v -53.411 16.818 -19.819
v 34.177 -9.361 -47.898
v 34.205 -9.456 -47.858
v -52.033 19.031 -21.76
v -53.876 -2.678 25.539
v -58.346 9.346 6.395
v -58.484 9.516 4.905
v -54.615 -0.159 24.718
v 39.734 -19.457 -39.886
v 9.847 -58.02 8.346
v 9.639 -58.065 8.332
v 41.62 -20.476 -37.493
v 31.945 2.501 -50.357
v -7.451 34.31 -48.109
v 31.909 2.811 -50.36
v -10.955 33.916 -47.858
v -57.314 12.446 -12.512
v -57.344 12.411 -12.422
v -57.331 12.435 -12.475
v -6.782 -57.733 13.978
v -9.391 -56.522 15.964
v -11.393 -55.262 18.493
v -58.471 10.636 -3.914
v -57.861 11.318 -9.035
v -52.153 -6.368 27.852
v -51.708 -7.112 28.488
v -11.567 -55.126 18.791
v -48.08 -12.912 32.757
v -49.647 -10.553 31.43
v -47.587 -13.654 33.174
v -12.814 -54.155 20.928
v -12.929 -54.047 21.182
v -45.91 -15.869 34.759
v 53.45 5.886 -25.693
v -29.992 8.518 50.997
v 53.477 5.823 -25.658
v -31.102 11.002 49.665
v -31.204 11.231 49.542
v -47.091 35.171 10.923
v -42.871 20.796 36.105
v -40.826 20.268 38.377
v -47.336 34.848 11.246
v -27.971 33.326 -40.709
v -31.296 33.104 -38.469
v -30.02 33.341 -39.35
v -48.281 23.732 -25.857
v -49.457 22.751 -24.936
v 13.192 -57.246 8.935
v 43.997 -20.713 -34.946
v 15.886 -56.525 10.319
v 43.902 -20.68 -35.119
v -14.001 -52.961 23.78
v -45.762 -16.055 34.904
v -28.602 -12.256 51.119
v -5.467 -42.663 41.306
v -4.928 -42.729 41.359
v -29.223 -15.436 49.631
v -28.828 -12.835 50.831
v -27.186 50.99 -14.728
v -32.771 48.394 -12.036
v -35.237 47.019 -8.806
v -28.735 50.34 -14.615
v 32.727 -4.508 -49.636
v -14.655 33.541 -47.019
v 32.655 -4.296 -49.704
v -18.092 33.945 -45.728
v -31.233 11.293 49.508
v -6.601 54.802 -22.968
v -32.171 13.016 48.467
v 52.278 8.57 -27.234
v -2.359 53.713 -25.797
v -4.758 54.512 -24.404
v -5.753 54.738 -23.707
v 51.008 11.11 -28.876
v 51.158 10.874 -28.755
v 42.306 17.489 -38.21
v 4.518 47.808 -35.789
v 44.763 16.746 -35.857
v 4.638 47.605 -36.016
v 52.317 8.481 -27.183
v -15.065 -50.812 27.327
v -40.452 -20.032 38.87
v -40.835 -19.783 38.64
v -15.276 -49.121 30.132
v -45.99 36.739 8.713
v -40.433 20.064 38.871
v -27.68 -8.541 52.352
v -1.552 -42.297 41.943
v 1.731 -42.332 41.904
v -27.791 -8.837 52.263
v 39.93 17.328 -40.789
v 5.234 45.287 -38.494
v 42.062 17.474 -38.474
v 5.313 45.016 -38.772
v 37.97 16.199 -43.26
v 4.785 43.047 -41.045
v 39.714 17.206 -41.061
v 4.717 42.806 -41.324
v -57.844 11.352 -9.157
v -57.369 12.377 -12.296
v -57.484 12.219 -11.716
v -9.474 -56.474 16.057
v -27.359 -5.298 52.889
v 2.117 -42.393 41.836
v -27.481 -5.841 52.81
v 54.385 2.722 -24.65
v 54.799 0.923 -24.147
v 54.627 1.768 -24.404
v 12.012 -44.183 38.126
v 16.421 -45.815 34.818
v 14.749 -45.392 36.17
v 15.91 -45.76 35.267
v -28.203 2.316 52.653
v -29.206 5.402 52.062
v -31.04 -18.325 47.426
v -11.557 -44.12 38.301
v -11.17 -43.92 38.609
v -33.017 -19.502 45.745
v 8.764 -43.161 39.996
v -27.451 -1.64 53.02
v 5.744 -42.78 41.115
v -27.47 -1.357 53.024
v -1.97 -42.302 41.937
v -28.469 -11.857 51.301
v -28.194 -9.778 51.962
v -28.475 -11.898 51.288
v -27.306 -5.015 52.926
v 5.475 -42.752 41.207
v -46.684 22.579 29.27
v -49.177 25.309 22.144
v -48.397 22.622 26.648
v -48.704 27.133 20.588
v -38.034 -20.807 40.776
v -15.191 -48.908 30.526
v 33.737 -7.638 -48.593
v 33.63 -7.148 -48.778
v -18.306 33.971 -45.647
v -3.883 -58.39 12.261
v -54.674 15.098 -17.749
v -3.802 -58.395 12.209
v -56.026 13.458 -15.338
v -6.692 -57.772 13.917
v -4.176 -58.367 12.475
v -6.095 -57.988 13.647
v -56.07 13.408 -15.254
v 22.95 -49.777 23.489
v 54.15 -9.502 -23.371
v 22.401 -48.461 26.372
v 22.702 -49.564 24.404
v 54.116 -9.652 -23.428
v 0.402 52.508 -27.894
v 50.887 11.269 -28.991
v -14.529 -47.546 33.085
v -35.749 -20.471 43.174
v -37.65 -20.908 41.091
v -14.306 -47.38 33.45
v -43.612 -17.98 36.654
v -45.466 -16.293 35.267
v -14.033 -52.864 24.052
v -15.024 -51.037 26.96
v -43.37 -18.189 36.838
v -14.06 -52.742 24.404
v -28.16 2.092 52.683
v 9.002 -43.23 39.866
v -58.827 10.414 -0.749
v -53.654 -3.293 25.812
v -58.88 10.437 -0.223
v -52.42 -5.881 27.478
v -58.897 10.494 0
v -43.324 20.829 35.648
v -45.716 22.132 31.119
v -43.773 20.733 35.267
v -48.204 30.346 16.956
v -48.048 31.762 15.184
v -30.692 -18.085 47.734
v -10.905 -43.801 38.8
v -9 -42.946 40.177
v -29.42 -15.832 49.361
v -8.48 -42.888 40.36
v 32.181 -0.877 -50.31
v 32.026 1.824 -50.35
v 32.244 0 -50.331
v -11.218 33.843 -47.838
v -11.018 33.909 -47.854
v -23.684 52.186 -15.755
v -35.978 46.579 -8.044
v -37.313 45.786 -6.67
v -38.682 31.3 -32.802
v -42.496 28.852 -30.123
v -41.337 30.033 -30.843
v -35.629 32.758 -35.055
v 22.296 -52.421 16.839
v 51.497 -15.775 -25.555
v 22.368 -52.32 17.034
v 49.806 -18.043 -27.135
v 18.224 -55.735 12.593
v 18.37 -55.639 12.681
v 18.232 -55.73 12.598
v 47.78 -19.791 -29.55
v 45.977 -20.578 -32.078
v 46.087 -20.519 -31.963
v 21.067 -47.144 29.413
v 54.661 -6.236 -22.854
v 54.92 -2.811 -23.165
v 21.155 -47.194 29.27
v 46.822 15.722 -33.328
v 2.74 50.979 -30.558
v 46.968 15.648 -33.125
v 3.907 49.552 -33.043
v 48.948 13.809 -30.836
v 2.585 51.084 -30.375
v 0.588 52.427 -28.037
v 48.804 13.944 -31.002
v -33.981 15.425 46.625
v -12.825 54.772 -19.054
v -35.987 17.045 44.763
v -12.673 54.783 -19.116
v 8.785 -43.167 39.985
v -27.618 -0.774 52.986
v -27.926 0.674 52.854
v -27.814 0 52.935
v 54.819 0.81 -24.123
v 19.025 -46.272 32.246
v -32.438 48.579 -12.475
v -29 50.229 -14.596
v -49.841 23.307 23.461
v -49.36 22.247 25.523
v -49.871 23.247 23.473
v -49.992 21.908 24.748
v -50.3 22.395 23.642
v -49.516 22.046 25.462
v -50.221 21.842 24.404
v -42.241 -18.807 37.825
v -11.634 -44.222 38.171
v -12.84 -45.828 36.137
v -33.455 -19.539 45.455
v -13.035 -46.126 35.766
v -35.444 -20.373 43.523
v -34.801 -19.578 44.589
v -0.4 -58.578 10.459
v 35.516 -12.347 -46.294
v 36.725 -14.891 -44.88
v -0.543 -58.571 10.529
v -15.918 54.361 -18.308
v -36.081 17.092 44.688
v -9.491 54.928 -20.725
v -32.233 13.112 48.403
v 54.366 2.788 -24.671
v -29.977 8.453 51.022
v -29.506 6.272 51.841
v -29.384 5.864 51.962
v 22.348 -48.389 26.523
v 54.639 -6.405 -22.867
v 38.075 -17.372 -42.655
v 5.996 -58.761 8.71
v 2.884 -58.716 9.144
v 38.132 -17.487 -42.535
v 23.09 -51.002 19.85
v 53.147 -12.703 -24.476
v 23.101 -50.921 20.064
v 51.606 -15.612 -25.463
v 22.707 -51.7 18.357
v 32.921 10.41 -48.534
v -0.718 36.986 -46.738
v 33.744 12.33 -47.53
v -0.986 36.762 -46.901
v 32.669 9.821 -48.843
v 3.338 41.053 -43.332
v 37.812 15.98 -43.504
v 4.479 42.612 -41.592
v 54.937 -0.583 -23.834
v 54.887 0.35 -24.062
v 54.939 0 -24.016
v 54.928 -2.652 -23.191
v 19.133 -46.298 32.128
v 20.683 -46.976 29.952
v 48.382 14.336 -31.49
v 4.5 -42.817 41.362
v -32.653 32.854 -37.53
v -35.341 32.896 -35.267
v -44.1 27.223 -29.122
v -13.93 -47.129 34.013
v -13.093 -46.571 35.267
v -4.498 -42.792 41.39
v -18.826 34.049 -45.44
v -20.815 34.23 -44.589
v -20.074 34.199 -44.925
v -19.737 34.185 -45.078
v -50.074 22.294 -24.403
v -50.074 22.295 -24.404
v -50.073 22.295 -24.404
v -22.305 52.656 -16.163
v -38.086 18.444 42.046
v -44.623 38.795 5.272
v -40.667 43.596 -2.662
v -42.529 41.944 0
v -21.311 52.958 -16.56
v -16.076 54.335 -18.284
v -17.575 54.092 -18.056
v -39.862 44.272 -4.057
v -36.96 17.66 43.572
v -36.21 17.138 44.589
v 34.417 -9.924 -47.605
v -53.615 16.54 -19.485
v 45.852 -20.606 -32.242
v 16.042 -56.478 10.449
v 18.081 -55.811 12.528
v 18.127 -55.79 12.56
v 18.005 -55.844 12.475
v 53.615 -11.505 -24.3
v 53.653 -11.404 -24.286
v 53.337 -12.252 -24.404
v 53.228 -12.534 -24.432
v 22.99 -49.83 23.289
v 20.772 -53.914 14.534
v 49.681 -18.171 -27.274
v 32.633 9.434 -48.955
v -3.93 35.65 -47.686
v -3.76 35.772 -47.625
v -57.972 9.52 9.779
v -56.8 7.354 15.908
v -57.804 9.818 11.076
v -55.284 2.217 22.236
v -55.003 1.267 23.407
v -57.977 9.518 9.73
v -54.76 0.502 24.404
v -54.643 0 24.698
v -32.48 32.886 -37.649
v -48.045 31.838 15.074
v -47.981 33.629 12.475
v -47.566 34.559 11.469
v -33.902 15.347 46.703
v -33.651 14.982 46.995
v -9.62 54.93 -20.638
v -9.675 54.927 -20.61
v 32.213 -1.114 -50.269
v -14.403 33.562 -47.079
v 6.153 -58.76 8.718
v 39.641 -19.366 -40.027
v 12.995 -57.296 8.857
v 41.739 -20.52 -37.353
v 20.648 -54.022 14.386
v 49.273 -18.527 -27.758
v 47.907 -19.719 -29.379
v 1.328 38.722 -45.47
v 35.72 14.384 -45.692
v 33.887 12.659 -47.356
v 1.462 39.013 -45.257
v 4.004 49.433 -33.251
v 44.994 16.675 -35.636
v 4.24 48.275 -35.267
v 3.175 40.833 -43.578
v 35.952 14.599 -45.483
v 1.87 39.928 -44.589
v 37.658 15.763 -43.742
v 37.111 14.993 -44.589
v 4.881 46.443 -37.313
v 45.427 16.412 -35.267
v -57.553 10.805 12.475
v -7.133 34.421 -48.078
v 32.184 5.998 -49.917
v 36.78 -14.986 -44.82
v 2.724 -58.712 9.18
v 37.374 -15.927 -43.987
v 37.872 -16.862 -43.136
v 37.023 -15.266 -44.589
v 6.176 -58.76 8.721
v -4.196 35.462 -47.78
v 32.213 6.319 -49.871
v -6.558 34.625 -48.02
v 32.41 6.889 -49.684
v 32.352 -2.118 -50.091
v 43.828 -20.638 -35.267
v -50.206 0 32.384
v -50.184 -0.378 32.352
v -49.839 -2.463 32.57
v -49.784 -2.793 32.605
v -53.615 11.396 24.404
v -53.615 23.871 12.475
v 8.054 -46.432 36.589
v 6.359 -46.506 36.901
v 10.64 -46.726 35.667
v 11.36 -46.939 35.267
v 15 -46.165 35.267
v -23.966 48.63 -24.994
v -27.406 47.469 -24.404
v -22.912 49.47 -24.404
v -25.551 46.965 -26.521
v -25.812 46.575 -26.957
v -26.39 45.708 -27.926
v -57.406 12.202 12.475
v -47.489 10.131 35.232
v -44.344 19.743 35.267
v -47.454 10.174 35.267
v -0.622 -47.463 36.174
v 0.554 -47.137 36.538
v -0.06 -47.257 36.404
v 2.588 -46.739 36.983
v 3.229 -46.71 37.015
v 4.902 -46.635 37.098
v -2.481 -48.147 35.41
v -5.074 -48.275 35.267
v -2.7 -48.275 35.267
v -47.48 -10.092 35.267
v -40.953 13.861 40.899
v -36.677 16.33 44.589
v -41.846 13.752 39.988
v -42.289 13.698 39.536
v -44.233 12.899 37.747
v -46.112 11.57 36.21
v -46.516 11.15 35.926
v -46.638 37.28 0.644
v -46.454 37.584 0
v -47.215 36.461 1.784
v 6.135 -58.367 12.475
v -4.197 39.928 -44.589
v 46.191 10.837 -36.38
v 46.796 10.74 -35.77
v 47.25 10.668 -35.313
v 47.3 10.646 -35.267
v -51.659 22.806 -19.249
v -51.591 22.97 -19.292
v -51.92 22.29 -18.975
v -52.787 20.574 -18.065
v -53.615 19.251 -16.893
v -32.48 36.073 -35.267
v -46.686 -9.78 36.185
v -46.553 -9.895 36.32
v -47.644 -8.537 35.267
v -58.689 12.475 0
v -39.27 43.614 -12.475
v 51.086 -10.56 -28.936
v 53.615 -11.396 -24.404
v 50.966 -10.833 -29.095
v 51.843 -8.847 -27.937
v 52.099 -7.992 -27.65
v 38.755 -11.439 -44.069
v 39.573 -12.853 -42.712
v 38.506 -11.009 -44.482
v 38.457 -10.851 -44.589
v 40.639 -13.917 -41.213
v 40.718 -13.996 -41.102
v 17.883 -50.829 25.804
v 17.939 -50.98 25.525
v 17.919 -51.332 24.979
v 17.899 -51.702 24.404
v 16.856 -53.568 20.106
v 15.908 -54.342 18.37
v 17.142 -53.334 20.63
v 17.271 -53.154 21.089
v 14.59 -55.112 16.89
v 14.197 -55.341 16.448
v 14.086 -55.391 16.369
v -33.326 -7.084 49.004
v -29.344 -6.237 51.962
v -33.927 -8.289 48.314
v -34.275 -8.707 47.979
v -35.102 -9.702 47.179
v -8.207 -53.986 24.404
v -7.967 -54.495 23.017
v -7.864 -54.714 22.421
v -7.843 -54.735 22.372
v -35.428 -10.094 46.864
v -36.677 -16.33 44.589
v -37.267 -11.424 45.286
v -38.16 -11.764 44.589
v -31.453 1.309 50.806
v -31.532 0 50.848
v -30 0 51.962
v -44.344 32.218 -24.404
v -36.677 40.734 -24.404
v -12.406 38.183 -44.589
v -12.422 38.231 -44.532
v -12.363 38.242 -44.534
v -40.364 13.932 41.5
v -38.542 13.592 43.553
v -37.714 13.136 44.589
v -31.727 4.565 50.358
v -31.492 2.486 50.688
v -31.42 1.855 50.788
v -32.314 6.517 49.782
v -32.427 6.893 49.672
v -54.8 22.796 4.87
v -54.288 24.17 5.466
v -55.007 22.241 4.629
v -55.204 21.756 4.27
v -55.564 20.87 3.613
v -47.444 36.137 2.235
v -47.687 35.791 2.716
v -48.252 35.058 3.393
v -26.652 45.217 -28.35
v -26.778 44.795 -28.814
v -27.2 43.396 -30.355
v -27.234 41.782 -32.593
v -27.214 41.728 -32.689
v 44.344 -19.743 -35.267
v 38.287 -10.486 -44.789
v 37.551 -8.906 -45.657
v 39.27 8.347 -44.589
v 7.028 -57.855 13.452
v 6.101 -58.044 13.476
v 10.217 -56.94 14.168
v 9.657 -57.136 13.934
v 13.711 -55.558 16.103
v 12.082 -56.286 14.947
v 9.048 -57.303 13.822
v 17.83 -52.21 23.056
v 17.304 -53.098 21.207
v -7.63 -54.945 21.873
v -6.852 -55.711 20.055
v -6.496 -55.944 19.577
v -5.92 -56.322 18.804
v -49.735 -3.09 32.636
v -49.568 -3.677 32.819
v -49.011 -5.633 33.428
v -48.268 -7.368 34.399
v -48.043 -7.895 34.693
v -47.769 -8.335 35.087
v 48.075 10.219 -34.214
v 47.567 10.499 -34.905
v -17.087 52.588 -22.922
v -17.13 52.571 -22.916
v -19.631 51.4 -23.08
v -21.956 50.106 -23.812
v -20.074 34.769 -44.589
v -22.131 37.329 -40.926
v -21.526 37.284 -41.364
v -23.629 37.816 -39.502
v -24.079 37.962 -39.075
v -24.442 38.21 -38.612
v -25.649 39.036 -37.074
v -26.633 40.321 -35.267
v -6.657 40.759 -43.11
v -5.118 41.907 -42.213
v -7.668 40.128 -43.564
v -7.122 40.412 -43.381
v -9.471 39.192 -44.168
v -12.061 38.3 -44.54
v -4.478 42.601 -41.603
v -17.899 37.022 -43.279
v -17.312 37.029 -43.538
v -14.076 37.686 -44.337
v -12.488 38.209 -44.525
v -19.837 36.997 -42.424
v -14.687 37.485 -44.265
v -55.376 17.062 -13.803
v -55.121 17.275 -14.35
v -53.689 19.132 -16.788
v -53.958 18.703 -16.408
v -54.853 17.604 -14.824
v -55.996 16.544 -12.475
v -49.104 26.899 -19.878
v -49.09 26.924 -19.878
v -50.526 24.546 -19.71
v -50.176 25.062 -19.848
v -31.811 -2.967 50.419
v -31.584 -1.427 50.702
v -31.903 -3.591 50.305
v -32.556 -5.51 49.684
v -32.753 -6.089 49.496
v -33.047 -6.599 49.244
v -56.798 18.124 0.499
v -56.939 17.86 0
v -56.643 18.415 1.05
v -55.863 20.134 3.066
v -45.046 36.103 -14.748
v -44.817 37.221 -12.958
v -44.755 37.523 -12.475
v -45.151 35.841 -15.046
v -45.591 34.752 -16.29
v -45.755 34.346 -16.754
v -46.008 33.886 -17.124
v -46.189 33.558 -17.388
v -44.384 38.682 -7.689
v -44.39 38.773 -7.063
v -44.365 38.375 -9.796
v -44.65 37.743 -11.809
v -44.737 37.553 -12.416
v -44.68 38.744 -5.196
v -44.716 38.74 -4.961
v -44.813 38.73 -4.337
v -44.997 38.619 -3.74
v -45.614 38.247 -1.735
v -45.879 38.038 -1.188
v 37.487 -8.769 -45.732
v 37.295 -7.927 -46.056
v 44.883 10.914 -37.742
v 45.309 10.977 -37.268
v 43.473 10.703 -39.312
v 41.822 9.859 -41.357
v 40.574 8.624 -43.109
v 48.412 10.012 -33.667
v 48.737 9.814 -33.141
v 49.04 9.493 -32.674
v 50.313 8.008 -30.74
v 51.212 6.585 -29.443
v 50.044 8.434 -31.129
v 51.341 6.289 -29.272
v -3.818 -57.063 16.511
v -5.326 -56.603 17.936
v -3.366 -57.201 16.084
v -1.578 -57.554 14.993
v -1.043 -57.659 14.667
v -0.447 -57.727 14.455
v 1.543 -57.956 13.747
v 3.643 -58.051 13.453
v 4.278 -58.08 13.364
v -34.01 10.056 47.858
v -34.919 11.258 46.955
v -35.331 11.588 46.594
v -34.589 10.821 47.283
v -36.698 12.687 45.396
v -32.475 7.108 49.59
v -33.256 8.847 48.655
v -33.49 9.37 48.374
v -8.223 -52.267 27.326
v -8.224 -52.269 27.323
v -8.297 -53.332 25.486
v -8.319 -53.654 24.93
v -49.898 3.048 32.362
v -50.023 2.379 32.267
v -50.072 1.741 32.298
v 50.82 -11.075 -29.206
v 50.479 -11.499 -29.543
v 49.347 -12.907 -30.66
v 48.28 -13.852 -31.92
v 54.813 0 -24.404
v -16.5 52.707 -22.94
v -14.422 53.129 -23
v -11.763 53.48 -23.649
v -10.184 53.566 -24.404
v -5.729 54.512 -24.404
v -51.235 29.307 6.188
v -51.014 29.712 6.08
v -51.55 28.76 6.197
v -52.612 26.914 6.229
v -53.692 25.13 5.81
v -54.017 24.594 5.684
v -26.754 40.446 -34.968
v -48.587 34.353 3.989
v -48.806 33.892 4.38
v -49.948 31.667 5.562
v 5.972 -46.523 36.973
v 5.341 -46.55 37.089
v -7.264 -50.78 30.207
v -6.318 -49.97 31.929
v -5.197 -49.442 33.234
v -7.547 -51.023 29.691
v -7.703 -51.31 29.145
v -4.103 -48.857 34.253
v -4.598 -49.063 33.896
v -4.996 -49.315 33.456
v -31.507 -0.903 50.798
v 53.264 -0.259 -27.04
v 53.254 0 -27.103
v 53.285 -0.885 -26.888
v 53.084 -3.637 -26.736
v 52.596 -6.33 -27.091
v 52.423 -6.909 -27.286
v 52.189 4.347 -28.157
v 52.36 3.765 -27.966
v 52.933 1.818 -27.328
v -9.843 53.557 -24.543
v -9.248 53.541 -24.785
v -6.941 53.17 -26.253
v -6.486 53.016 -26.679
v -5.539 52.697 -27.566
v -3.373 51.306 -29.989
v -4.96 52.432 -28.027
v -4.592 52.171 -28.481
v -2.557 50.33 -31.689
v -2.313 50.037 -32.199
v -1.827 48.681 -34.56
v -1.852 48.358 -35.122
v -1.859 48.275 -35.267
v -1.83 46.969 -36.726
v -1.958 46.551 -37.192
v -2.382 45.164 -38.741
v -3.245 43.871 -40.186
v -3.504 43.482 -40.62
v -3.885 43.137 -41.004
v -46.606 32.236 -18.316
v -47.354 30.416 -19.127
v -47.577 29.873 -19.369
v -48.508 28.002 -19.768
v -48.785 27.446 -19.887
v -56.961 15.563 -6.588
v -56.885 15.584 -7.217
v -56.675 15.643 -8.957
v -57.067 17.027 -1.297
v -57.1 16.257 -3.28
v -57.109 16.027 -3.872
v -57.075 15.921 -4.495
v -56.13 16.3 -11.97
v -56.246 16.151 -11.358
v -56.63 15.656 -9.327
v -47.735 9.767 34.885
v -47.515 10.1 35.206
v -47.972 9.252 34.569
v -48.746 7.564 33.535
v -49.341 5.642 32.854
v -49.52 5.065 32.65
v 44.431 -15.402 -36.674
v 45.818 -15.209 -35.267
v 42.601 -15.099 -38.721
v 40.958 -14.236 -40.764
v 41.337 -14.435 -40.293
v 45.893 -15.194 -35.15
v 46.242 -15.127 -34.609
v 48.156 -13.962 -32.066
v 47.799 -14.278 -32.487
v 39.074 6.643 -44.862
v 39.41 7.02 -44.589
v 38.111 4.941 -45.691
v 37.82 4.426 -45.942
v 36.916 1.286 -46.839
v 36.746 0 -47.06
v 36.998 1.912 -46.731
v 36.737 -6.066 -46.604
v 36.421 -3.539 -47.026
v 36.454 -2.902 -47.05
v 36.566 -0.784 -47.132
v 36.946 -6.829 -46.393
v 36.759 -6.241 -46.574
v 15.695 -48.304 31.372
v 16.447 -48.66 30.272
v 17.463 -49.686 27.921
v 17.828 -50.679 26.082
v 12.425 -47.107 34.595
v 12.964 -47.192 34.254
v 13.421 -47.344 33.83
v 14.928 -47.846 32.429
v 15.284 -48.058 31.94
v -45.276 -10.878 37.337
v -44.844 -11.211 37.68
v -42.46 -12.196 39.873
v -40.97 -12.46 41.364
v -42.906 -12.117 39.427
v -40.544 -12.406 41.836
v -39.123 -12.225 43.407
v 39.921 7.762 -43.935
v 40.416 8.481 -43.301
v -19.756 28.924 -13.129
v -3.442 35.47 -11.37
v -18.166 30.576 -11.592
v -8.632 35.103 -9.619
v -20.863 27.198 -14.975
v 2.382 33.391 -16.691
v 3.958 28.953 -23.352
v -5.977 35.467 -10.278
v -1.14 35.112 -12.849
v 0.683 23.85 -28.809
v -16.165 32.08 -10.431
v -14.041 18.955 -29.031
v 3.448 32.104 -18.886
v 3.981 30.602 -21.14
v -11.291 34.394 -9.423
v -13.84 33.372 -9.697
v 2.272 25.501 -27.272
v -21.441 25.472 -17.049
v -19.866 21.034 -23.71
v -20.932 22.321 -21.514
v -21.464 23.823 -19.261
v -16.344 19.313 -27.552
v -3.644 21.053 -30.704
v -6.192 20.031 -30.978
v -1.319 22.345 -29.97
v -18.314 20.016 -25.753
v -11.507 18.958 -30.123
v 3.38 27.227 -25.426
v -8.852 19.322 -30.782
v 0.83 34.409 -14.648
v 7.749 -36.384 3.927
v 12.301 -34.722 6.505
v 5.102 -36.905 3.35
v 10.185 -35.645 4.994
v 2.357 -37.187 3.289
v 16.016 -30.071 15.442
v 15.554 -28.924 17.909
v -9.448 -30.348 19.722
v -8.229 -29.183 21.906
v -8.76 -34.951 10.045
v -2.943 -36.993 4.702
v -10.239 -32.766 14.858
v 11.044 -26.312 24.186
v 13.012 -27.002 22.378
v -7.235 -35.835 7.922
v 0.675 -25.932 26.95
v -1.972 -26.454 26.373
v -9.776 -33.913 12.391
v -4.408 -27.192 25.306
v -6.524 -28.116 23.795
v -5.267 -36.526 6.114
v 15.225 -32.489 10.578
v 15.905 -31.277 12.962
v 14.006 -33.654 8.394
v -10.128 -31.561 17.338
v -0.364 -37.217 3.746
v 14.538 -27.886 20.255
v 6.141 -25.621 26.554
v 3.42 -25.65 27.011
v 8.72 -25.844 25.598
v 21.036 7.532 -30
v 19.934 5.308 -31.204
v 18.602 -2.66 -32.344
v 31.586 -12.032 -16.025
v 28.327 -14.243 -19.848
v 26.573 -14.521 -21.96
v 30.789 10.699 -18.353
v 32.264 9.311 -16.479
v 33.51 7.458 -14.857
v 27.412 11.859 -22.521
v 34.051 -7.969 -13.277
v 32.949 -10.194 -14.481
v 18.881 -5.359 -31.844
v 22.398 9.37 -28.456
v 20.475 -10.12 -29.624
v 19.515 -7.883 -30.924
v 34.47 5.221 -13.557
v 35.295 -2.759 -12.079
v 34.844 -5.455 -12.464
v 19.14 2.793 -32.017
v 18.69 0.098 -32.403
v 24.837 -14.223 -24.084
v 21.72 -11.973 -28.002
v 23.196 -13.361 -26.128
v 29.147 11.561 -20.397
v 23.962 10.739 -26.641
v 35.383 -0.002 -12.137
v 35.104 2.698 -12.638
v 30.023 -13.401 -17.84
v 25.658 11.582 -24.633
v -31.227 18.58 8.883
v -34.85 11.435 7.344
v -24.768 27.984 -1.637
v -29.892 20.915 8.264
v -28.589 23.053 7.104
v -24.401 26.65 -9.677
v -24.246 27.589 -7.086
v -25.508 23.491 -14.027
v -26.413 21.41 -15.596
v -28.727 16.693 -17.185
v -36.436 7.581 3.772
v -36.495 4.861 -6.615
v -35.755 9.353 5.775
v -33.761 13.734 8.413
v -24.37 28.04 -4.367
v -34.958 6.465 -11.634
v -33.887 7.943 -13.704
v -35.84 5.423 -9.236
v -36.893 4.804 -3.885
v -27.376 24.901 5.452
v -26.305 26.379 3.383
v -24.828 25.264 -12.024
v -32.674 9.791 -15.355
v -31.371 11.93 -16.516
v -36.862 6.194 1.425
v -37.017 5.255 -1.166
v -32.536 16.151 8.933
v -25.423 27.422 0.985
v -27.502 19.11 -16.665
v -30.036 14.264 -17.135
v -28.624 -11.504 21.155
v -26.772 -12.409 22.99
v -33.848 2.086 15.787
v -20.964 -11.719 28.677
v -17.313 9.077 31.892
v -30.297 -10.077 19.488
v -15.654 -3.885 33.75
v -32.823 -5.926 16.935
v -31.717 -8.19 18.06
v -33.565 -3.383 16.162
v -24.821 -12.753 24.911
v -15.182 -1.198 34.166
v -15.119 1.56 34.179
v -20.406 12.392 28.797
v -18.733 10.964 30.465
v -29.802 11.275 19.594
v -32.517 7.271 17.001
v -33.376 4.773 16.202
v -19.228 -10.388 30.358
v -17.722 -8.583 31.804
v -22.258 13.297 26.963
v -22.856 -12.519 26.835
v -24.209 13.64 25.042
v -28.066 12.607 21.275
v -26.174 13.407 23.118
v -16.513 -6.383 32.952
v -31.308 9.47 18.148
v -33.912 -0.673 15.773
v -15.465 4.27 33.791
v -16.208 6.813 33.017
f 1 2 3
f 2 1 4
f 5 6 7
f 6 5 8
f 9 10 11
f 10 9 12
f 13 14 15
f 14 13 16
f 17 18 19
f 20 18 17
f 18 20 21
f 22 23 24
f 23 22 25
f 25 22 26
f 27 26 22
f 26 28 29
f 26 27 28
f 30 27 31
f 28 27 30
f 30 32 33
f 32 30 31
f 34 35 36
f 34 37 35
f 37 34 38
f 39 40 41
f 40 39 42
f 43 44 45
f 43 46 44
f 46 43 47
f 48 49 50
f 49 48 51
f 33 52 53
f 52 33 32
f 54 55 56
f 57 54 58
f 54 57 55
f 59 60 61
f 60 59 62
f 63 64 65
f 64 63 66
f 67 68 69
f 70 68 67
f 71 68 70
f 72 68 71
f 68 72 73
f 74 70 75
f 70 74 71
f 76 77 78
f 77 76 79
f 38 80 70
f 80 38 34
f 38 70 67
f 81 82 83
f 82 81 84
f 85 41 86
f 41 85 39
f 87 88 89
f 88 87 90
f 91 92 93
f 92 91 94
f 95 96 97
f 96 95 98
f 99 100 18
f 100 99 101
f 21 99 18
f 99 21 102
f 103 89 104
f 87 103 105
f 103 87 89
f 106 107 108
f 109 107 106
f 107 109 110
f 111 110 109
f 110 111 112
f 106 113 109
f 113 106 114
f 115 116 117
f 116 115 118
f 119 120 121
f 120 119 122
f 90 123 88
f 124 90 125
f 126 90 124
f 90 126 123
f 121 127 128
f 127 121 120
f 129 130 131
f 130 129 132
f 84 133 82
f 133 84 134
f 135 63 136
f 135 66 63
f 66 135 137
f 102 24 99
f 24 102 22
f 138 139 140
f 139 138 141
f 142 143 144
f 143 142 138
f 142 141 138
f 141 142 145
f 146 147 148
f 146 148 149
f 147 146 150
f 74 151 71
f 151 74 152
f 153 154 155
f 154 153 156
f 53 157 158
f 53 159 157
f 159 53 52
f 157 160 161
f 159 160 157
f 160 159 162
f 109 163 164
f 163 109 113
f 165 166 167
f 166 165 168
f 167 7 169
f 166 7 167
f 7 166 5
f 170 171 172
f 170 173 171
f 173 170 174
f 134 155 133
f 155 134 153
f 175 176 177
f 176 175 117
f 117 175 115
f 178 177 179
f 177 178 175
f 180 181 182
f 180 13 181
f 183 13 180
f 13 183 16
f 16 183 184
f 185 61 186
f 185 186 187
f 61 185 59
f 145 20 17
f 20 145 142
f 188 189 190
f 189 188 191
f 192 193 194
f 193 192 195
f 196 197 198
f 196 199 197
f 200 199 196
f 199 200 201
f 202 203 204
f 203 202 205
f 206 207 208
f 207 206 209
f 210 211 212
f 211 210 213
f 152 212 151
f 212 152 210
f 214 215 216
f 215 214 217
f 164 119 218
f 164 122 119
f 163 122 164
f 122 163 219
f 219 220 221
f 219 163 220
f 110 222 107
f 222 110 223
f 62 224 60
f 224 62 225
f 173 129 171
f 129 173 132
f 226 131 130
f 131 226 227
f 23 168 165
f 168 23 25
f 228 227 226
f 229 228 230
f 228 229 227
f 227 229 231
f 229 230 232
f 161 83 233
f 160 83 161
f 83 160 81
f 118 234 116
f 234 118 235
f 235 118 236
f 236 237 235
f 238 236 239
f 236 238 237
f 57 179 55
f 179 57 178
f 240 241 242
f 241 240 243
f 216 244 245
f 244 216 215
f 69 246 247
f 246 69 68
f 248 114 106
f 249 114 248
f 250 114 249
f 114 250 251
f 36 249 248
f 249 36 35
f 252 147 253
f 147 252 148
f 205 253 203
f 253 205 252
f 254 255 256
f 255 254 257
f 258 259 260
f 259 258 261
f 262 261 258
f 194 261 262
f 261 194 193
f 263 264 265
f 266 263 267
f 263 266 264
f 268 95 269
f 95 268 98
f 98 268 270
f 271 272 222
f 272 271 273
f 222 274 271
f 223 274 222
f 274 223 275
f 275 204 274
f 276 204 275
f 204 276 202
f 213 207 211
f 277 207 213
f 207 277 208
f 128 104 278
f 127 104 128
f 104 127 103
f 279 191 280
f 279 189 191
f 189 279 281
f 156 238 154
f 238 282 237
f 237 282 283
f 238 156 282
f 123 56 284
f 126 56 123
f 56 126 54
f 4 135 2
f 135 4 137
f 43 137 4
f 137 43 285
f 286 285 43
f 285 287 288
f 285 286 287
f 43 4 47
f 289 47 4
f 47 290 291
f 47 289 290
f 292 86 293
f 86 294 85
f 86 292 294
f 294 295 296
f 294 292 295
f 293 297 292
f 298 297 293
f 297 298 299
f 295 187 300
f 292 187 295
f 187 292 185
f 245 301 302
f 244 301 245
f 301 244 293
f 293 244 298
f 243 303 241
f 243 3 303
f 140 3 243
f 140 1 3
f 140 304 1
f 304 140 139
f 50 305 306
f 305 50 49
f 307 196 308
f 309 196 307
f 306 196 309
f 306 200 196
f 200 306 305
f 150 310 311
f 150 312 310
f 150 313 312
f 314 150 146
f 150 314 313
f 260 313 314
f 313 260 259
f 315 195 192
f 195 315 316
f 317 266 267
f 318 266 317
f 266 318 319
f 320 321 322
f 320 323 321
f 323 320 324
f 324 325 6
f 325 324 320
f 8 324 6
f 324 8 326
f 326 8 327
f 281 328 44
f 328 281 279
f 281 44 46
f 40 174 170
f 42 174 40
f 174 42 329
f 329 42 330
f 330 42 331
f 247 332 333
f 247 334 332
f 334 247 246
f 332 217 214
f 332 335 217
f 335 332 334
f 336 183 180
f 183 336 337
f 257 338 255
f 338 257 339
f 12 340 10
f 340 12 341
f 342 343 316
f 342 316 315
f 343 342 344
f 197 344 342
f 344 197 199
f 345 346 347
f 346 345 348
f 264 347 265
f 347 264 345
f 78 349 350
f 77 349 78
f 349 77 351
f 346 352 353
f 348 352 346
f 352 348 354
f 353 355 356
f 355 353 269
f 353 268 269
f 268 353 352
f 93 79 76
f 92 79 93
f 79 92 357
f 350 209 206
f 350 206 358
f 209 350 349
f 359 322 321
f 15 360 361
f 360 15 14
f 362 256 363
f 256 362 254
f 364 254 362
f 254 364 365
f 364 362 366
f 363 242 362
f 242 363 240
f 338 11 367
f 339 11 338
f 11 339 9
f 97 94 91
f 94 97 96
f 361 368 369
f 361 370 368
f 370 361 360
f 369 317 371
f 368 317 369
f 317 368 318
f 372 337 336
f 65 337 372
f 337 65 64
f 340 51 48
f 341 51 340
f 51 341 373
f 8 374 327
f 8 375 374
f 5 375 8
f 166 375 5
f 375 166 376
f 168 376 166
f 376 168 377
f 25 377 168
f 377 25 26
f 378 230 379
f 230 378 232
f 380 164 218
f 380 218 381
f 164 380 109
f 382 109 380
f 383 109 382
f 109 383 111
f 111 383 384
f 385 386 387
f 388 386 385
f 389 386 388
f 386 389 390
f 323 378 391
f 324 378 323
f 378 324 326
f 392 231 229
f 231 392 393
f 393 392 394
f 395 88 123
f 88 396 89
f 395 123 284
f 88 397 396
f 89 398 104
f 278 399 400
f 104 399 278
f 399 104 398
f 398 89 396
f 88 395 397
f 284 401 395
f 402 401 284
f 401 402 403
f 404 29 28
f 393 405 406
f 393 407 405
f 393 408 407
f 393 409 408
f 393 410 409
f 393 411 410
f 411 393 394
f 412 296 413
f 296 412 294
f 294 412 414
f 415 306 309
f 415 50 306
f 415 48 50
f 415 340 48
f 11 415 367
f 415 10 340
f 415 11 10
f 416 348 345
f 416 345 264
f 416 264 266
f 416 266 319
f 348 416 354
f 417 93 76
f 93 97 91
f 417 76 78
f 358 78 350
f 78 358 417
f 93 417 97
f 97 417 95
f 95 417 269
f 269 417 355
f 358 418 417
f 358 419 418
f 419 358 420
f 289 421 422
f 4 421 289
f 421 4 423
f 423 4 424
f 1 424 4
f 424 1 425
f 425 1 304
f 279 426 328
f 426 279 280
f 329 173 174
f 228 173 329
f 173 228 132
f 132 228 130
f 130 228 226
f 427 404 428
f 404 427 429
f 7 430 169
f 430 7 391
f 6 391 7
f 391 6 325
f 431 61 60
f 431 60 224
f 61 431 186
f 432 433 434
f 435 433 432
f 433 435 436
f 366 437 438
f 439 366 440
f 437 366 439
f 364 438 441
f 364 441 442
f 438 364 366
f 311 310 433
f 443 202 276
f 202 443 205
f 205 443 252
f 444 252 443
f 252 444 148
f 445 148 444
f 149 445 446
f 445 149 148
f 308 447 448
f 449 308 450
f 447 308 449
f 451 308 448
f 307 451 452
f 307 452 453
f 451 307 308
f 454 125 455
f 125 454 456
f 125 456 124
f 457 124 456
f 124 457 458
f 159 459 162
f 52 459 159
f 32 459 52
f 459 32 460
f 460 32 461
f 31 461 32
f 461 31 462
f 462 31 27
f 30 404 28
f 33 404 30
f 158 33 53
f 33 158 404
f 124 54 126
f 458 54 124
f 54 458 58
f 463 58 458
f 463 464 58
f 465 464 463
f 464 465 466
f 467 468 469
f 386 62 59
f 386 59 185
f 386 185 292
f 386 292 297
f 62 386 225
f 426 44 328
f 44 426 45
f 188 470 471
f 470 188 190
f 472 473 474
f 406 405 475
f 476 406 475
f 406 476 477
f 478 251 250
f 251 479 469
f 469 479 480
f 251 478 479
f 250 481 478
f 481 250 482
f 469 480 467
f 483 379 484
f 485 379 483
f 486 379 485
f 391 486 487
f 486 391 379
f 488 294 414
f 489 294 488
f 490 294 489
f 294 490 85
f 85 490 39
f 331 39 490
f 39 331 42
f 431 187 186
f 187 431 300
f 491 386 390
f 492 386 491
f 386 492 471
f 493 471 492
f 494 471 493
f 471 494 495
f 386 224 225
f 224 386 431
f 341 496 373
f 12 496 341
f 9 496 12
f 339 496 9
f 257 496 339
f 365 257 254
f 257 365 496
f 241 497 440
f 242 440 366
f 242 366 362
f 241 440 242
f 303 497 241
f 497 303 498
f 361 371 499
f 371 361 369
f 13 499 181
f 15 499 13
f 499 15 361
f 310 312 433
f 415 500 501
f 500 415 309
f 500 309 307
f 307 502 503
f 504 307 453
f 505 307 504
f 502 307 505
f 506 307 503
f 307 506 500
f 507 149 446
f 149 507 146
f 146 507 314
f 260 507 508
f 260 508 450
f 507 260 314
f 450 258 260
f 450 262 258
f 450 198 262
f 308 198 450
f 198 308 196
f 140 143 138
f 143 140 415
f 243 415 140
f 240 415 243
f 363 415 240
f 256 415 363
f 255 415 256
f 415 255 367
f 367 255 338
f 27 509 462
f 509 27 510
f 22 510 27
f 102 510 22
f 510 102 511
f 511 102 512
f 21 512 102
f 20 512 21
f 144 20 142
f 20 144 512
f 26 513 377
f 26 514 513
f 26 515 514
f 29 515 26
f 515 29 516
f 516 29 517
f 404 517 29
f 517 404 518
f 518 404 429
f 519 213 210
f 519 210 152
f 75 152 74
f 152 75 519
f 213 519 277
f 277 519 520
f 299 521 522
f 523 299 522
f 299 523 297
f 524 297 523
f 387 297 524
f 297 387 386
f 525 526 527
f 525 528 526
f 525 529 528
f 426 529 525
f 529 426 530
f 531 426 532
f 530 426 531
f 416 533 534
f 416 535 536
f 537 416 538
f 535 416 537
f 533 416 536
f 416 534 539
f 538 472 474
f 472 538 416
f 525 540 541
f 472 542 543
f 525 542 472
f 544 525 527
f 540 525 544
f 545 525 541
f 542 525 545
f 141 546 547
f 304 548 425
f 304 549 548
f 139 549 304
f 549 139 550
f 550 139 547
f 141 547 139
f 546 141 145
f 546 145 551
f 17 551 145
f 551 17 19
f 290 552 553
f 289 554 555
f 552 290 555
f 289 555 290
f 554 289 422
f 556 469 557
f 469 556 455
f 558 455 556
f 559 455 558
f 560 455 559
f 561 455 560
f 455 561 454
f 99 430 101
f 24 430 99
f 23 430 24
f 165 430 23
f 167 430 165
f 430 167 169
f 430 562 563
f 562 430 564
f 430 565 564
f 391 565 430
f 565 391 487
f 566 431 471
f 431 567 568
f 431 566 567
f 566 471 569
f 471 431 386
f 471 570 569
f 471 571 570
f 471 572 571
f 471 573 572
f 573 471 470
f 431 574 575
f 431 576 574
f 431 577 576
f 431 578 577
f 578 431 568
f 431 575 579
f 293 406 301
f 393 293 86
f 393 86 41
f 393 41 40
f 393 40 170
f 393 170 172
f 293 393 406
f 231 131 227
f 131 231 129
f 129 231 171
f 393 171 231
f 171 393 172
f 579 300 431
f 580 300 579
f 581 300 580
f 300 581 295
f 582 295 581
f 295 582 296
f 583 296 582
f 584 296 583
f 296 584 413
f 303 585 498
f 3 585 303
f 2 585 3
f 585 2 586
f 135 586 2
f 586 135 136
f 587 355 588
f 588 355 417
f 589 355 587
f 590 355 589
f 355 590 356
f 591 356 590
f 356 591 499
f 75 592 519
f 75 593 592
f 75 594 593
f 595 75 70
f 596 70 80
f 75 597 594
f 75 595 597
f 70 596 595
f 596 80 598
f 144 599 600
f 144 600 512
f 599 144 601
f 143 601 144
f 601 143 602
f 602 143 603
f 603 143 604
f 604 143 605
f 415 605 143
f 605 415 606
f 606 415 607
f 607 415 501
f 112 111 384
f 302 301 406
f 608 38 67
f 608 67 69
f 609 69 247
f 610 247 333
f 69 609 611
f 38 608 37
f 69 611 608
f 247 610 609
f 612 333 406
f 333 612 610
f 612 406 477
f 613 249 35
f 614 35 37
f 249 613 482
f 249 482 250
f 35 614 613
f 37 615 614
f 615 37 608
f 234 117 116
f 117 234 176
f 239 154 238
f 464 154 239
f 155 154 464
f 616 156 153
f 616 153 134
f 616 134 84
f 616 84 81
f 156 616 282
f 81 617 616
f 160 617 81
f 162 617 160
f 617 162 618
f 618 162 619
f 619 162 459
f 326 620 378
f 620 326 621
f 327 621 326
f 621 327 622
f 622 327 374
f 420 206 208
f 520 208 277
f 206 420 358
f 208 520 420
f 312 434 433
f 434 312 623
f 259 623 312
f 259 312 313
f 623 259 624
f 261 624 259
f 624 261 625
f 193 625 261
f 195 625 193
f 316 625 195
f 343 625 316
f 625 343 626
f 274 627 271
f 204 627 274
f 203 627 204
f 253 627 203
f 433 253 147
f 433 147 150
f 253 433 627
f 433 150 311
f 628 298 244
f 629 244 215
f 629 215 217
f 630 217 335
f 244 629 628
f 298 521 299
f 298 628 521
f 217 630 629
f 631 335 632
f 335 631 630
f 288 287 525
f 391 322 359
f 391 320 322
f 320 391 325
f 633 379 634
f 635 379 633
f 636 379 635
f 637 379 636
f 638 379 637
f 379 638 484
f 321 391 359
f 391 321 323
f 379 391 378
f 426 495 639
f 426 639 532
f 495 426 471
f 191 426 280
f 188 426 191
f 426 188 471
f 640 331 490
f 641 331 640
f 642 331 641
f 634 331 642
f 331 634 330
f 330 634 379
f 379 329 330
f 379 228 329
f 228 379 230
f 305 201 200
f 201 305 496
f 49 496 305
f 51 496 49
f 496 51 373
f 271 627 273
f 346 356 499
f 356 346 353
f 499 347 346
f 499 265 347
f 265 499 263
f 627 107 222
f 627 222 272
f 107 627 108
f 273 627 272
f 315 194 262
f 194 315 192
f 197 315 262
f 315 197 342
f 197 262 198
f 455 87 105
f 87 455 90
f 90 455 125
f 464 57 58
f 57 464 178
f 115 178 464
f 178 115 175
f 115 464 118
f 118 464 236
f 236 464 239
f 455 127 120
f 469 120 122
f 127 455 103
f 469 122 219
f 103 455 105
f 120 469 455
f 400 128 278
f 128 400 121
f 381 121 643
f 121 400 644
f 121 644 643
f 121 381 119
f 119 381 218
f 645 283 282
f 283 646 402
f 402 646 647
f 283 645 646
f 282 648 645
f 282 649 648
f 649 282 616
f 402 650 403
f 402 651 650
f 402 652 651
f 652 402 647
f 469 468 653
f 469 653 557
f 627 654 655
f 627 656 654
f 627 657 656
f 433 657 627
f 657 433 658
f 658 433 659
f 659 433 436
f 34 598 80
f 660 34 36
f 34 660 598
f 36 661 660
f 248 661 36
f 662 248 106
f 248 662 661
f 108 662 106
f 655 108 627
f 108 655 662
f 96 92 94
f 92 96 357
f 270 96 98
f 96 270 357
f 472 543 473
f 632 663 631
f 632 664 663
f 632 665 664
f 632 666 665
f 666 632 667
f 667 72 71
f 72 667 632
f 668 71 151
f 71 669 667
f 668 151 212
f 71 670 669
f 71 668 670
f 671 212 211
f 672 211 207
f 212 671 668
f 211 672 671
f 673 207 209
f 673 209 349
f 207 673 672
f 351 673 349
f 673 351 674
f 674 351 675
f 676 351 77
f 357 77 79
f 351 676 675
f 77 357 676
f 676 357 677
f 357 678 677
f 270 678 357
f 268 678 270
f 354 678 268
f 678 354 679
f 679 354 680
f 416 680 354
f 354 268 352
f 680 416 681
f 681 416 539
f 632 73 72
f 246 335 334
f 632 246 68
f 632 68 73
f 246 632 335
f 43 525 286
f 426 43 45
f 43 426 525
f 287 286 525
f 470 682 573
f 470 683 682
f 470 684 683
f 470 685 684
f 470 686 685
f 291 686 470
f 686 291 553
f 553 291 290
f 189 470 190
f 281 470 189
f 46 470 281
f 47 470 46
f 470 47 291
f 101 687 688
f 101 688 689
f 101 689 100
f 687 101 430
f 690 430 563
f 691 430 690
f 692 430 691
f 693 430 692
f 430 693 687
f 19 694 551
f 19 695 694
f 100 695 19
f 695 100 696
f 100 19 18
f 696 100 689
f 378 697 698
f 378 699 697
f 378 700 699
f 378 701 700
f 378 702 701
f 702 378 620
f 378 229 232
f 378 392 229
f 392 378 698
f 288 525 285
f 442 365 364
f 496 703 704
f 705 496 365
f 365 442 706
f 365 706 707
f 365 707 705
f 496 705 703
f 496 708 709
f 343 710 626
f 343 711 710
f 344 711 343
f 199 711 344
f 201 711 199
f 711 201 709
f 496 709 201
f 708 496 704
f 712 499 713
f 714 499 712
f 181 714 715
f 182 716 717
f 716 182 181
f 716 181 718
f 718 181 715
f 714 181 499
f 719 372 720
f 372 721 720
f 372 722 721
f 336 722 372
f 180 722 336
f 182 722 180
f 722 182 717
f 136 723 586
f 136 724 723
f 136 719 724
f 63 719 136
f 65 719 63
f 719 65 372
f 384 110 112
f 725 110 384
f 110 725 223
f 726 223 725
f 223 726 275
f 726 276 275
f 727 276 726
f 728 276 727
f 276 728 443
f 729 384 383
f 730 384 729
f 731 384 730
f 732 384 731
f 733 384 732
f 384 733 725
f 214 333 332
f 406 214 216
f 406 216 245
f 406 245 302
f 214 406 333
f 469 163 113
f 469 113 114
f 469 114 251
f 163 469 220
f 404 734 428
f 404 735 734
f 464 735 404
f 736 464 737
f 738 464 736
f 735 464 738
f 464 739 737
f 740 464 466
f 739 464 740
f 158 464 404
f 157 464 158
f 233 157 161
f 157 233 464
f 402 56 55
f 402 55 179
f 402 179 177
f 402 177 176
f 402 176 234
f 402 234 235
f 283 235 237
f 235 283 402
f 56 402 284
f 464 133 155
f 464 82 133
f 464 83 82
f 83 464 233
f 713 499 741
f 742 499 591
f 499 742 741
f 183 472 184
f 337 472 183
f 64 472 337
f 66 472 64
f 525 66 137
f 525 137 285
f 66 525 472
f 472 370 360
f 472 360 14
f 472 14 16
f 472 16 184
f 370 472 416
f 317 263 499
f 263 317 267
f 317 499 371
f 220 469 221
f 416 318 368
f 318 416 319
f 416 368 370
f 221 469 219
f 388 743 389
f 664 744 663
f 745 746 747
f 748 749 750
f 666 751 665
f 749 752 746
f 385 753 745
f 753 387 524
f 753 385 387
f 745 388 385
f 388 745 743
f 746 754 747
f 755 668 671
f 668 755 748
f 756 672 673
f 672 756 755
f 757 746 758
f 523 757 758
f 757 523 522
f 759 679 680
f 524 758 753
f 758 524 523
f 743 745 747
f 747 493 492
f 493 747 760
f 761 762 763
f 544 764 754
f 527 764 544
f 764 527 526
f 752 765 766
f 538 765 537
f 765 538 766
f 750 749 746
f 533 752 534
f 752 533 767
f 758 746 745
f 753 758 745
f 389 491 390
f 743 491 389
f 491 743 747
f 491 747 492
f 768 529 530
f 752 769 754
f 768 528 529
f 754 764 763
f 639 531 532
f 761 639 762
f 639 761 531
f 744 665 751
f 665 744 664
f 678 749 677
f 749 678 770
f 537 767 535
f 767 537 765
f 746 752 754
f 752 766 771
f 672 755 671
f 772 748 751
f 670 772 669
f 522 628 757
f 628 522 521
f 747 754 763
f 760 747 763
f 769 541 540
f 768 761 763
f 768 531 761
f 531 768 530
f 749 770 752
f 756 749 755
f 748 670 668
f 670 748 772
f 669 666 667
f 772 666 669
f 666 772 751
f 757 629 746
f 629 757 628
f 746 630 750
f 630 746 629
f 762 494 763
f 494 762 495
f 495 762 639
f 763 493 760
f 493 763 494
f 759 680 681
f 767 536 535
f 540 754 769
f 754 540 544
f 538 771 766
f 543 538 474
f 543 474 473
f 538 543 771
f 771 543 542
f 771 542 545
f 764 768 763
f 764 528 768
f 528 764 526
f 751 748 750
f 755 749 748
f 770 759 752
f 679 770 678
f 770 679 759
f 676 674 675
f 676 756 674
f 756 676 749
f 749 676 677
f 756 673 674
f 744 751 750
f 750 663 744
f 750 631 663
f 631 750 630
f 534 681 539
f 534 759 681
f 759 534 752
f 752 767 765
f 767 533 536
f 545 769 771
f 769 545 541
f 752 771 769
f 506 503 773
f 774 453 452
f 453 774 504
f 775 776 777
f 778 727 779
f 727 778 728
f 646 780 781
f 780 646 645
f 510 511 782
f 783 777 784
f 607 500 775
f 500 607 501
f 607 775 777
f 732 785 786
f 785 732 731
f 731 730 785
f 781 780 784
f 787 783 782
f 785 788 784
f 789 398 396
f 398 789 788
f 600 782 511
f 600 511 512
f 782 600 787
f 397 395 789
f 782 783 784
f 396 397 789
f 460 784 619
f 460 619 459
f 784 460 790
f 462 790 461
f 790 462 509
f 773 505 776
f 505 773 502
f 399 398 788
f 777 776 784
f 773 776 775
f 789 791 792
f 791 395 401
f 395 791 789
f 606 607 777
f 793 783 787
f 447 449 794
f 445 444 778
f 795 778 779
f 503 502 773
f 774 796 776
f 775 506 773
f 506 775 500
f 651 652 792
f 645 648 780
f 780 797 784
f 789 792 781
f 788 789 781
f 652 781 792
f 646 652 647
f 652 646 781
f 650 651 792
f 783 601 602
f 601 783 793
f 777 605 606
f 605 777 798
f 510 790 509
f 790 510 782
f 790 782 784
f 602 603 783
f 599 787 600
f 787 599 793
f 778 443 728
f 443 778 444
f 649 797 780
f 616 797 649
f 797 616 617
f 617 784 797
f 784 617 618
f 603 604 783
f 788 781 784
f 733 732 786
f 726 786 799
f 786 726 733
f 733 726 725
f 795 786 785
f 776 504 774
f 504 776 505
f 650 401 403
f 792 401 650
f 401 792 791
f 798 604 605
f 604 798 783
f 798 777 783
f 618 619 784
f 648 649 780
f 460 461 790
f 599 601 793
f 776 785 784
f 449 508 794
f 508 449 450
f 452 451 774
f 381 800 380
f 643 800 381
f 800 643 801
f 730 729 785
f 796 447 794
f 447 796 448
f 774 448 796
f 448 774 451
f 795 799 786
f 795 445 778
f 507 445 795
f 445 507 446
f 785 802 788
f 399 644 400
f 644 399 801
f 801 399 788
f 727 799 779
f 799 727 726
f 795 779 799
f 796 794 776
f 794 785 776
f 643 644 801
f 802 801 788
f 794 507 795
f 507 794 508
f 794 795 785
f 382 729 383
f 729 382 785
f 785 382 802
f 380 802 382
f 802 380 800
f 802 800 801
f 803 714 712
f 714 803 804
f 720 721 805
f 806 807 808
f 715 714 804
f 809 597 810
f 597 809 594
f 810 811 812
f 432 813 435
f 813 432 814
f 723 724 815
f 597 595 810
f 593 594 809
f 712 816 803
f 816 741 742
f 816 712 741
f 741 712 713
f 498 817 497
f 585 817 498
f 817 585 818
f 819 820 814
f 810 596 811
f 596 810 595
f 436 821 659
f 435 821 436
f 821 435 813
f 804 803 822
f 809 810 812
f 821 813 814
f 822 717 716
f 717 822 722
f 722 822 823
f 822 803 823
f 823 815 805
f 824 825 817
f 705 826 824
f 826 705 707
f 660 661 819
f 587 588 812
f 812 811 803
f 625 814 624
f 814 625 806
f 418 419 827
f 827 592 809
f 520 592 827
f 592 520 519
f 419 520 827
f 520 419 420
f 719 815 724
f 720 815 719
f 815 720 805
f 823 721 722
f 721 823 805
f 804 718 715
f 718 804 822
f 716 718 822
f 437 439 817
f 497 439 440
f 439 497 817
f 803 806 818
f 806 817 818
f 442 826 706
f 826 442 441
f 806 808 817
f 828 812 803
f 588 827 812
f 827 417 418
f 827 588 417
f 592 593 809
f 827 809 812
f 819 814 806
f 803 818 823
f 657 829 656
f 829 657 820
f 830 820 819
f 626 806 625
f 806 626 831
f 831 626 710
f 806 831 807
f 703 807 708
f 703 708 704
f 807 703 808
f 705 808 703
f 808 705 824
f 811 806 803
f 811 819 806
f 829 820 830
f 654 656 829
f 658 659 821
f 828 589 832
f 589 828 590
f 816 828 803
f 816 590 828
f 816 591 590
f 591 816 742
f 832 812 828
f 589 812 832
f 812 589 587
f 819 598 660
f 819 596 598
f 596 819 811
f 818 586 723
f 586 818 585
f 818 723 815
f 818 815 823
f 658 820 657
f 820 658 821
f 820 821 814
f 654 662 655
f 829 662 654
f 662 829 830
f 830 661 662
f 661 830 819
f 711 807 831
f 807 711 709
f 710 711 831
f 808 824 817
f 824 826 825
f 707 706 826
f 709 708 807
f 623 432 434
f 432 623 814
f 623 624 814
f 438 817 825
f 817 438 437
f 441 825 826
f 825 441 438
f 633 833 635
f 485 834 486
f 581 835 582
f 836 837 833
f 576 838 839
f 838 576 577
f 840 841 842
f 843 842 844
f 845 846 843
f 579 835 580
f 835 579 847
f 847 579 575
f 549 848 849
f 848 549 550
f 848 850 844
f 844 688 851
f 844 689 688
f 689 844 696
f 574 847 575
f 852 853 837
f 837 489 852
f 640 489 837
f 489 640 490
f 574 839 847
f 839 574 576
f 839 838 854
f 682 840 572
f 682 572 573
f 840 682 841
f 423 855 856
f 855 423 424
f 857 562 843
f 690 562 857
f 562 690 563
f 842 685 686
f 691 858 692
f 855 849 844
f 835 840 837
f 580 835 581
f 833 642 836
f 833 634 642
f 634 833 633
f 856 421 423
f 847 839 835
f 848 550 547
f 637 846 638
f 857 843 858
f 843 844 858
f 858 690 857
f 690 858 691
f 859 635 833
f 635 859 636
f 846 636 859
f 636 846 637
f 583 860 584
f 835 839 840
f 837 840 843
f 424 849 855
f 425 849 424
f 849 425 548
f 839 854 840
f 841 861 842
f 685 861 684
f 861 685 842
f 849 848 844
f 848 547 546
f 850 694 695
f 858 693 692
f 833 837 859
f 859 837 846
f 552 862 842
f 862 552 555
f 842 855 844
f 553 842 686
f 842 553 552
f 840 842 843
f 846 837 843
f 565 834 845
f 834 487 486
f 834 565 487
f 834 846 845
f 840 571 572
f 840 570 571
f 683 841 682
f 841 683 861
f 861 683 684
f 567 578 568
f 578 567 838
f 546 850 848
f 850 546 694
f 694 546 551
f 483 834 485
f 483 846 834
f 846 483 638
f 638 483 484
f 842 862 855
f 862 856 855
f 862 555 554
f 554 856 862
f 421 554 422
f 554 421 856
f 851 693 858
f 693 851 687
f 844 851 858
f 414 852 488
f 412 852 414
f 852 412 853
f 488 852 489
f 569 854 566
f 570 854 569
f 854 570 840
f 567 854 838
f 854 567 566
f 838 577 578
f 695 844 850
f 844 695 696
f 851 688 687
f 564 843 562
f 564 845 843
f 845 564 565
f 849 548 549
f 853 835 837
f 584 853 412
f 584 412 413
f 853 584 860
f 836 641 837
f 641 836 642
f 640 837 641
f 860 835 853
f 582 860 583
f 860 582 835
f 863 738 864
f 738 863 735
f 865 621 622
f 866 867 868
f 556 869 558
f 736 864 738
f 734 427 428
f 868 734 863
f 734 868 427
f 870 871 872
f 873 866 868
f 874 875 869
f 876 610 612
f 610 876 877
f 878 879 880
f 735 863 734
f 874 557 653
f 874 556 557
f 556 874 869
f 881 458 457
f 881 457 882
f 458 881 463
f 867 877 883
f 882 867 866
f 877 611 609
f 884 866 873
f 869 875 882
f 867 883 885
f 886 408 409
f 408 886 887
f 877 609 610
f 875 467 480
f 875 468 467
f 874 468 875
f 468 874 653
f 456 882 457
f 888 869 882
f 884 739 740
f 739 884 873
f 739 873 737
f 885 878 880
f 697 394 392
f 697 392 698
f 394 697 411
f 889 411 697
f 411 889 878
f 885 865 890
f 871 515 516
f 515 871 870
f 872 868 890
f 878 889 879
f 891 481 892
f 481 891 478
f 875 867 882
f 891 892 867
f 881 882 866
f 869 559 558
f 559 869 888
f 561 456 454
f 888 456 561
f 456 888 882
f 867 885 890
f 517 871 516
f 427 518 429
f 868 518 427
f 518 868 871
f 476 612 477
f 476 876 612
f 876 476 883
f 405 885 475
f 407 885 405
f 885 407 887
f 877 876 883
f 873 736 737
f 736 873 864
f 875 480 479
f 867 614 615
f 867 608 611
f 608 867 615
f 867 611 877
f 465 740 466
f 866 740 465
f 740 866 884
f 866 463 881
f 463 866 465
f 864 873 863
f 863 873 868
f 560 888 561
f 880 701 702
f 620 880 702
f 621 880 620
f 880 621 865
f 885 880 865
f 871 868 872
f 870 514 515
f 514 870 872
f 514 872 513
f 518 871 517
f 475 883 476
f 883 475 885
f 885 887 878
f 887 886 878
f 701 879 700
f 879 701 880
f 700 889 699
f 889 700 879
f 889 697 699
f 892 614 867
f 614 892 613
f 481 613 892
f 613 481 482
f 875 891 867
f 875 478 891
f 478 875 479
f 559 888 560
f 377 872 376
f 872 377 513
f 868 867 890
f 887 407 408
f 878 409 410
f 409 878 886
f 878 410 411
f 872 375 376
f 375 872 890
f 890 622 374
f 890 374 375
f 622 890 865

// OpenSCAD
difference() {
	intersection() {
		hull() {
			rotate(a = -129.9067974239, v = [-0.2424397553, -0.7277695860, 0.0000000000]) {
				rotate(a = -90.0000000000, v = [0.3871471348, -0.9220179478, 0.0000000000]) {
					cylinder(h = 60, r = 16.2000000000);
				}
			}
			rotate(a = -129.9067974239, v = [-0.2424397553, -0.7277695860, 0.0000000000]) {
				rotate(a = -90.0000000000, v = [-0.6049173981, 0.7962882276, 0.0000000000]) {
					cylinder(h = 60, r = 16.2000000000);
				}
			}
			rotate(a = -129.9067974239, v = [-0.2424397553, -0.7277695860, 0.0000000000]) {
				rotate(a = -12.0005518641, v = [0.1937545976, -0.0754343741, 0.0000000000]) {
					cylinder(h = 60, r = 16.2000000000);
				}
			}
			rotate(a = -129.9067974239, v = [-0.2424397553, -0.7277695860, 0.0000000000]) {
				rotate(a = -132.4587967935, v = [-0.0670933995, -0.7347058574, 0.0000000000]) {
					cylinder(h = 60, r = 16.2000000000);
				}
			}
			rotate(a = -129.9067974239, v = [-0.2424397553, -0.7277695860, 0.0000000000]) {
				rotate(a = -166.0804100829, v = [-0.1611591317, 0.1785967851, 0.0000000000]) {
					cylinder(h = 60, r = 16.2000000000);
				}
			}
		}
		sphere(r = 60);
	}
	union() {
		rotate(a = -129.9067974239, v = [-0.2424397553, -0.7277695860, 0.0000000000]) {
			rotate(a = -90.0000000000, v = [0.3871471348, -0.9220179478, 0.0000000000]) {
				translate(v = [0, 0, 35]) {
					cylinder(h = 100, r = 13.2000000000);
				}
			}
		}
		rotate(a = -129.9067974239, v = [-0.2424397553, -0.7277695860, 0.0000000000]) {
			rotate(a = -90.0000000000, v = [-0.6049173981, 0.7962882276, 0.0000000000]) {
				translate(v = [0, 0, 35]) {
					cylinder(h = 100, r = 13.2000000000);
				}
			}
		}
		rotate(a = -129.9067974239, v = [-0.2424397553, -0.7277695860, 0.0000000000]) {
			rotate(a = -12.0005518641, v = [0.1937545976, -0.0754343741, 0.0000000000]) {
				translate(v = [0, 0, 35]) {
					cylinder(h = 100, r = 13.2000000000);
				}
			}
		}
		rotate(a = -129.9067974239, v = [-0.2424397553, -0.7277695860, 0.0000000000]) {
			rotate(a = -132.4587967935, v = [-0.0670933995, -0.7347058574, 0.0000000000]) {
				translate(v = [0, 0, 35]) {
					cylinder(h = 100, r = 13.2000000000);
				}
			}
		}
		rotate(a = -129.9067974239, v = [-0.2424397553, -0.7277695860, 0.0000000000]) {
			rotate(a = -166.0804100829, v = [-0.1611591317, 0.1785967851, 0.0000000000]) {
				translate(v = [0, 0, 35]) {
					cylinder(h = 100, r = 13.2000000000);
				}
			}
		}
	}
}
